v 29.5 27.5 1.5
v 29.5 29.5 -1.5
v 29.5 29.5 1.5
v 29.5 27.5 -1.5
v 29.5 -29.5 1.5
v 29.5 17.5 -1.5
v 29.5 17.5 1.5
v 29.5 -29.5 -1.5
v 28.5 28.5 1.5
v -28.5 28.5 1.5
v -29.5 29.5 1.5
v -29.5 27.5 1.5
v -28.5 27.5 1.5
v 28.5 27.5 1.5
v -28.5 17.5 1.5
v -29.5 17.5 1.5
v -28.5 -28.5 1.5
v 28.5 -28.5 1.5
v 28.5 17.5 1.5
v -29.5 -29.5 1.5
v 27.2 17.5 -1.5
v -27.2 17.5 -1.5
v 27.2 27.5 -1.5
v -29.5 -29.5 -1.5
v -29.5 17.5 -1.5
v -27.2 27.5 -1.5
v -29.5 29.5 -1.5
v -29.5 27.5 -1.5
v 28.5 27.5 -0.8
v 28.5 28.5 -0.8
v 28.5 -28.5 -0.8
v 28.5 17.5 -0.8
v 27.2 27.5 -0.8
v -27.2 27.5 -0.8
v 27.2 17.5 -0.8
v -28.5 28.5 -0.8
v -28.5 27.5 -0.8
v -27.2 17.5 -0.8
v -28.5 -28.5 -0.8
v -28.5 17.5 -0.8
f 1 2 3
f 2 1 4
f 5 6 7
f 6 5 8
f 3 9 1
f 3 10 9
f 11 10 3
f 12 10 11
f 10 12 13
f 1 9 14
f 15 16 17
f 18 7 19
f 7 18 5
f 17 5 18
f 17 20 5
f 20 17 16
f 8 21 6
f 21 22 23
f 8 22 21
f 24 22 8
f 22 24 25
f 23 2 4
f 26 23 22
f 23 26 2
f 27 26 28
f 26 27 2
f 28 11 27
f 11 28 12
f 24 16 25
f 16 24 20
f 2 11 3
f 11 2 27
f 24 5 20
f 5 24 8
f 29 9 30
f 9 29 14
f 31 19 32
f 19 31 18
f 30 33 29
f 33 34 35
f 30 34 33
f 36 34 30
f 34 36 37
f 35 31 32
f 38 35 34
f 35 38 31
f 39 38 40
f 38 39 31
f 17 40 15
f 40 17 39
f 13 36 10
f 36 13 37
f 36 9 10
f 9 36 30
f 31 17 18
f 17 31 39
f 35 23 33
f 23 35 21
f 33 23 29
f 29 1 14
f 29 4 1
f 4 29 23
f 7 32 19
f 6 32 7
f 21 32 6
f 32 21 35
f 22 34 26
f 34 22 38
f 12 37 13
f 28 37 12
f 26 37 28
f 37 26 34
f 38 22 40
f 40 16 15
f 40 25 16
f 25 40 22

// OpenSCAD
/*
*   ESPotifyEcho spareCubeBase
*   22-08-2022
*/

$fn=60;

module cubeBase()
{
  difference()
  {
    cube([59,59,3], true);
    translate([0,0,0.7])      cube([57,57,3], true);
    translate([27.2,17.5,-3]) color("red") cube([9,10,10]);
    translate([-36.2,17.5,-3])  color("red") cube([9,10,10]);
  }
} //  cubeBase()


module tubeExt1()
{
  difference()
  {
    cylinder(h=10, d=11.5, center=true);
    cylinder(h=11, d=9.5, center=true);
  }
} //  tubeExt1()

module tubeExt2()
{
  difference()
  {
    cylinder(h=8, d=11.5, center=true);
    cylinder(h=9, d=9.5, center=true);
    translate([7,0,0]) cube([8,2.5,9], true);
  }
} //  tubeExt2()


cubeBase();

//tubeExt1();
//tubeExt2();
